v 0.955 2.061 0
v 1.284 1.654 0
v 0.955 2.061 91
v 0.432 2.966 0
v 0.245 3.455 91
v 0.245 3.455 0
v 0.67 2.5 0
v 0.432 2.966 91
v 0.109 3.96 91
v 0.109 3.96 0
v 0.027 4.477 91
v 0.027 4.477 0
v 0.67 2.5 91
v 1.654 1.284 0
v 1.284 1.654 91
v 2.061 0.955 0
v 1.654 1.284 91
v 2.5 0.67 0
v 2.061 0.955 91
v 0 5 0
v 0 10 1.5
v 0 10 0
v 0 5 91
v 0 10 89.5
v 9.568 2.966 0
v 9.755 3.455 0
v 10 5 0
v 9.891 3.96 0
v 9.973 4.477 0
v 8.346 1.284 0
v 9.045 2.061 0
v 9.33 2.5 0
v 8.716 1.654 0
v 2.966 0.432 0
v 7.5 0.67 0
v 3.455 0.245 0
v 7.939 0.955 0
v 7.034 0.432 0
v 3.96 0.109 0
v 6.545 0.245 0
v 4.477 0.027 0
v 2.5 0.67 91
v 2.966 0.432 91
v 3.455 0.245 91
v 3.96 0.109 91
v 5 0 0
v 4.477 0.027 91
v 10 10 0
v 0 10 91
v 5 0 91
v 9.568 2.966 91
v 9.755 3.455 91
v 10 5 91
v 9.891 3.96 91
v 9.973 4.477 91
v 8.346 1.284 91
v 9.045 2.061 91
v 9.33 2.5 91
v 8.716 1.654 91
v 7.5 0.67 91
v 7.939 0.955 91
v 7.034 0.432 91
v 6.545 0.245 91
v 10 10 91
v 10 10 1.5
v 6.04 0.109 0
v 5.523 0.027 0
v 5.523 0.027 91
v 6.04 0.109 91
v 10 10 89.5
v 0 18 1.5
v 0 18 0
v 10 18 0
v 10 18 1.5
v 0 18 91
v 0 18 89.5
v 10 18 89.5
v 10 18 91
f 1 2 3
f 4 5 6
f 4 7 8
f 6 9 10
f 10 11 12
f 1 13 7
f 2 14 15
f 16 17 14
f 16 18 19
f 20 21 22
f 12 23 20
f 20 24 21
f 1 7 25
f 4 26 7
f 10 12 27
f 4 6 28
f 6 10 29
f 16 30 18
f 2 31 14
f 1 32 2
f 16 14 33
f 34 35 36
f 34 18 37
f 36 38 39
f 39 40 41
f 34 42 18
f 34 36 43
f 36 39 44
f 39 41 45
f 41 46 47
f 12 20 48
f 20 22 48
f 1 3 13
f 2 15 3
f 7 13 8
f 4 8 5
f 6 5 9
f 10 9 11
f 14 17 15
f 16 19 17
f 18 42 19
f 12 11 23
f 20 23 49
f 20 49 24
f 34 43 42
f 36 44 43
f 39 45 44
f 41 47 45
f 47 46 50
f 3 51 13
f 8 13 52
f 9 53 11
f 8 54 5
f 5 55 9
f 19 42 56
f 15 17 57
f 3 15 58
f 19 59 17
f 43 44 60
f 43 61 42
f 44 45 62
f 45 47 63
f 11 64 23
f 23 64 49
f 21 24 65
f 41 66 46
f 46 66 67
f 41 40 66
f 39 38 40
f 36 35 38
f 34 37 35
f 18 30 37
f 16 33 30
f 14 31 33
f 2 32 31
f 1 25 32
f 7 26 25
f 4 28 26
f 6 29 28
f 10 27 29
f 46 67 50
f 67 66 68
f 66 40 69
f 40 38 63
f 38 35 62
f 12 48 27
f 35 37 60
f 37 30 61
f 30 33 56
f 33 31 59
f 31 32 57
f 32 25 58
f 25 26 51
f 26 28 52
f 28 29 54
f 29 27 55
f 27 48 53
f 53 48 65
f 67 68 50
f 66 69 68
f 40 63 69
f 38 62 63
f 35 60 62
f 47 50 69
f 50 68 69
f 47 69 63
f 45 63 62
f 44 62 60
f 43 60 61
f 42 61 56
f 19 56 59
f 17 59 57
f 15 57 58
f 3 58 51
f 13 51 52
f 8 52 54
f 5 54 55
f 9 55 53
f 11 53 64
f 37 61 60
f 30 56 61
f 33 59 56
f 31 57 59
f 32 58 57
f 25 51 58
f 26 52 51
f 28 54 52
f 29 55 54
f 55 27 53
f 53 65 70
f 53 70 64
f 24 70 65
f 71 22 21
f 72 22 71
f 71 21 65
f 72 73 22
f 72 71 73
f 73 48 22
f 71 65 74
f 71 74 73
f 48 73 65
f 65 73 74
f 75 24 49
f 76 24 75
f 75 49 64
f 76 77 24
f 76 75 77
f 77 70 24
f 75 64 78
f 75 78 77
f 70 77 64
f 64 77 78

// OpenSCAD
// BarRod - 杆状设计
// 结构：长度91mm，横截面为半径5mm半圆（下方）+ 10mm宽5mm高矩形（上方）
// 平侧朝上，两端向上伸出8mm高、1.5mm宽耳朵，内部形成88mm缺口

$fn = 60; // 圆滑度

module BarRod() {
    // 主体杆：横截面半圆在下、矩形在上（平侧朝上），挤出91mm长度
    linear_extrude(height = 91) {
        // 半圆部分：半径5mm，圆心位于(5,5)，圆弧朝下
        translate([5, 5])
            circle(r = 5);
        // 矩形部分：10mm宽 x 5mm高，位于半圆上方，顶面为平侧
        translate([0, 5])
            square([10, 5]);
    }
    
    // 左耳：z=0端，从平顶面(y=10)向上伸出8mm高、1.5mm宽（沿Z轴）
    translate([0, 10, 0])
        cube([10, 8, 1.5]);
    
    // 右耳：z=91端，内侧距左耳88mm
    translate([0, 10, 91 - 1.5])
        cube([10, 8, 1.5]);
}

// 渲染模型
BarRod();
